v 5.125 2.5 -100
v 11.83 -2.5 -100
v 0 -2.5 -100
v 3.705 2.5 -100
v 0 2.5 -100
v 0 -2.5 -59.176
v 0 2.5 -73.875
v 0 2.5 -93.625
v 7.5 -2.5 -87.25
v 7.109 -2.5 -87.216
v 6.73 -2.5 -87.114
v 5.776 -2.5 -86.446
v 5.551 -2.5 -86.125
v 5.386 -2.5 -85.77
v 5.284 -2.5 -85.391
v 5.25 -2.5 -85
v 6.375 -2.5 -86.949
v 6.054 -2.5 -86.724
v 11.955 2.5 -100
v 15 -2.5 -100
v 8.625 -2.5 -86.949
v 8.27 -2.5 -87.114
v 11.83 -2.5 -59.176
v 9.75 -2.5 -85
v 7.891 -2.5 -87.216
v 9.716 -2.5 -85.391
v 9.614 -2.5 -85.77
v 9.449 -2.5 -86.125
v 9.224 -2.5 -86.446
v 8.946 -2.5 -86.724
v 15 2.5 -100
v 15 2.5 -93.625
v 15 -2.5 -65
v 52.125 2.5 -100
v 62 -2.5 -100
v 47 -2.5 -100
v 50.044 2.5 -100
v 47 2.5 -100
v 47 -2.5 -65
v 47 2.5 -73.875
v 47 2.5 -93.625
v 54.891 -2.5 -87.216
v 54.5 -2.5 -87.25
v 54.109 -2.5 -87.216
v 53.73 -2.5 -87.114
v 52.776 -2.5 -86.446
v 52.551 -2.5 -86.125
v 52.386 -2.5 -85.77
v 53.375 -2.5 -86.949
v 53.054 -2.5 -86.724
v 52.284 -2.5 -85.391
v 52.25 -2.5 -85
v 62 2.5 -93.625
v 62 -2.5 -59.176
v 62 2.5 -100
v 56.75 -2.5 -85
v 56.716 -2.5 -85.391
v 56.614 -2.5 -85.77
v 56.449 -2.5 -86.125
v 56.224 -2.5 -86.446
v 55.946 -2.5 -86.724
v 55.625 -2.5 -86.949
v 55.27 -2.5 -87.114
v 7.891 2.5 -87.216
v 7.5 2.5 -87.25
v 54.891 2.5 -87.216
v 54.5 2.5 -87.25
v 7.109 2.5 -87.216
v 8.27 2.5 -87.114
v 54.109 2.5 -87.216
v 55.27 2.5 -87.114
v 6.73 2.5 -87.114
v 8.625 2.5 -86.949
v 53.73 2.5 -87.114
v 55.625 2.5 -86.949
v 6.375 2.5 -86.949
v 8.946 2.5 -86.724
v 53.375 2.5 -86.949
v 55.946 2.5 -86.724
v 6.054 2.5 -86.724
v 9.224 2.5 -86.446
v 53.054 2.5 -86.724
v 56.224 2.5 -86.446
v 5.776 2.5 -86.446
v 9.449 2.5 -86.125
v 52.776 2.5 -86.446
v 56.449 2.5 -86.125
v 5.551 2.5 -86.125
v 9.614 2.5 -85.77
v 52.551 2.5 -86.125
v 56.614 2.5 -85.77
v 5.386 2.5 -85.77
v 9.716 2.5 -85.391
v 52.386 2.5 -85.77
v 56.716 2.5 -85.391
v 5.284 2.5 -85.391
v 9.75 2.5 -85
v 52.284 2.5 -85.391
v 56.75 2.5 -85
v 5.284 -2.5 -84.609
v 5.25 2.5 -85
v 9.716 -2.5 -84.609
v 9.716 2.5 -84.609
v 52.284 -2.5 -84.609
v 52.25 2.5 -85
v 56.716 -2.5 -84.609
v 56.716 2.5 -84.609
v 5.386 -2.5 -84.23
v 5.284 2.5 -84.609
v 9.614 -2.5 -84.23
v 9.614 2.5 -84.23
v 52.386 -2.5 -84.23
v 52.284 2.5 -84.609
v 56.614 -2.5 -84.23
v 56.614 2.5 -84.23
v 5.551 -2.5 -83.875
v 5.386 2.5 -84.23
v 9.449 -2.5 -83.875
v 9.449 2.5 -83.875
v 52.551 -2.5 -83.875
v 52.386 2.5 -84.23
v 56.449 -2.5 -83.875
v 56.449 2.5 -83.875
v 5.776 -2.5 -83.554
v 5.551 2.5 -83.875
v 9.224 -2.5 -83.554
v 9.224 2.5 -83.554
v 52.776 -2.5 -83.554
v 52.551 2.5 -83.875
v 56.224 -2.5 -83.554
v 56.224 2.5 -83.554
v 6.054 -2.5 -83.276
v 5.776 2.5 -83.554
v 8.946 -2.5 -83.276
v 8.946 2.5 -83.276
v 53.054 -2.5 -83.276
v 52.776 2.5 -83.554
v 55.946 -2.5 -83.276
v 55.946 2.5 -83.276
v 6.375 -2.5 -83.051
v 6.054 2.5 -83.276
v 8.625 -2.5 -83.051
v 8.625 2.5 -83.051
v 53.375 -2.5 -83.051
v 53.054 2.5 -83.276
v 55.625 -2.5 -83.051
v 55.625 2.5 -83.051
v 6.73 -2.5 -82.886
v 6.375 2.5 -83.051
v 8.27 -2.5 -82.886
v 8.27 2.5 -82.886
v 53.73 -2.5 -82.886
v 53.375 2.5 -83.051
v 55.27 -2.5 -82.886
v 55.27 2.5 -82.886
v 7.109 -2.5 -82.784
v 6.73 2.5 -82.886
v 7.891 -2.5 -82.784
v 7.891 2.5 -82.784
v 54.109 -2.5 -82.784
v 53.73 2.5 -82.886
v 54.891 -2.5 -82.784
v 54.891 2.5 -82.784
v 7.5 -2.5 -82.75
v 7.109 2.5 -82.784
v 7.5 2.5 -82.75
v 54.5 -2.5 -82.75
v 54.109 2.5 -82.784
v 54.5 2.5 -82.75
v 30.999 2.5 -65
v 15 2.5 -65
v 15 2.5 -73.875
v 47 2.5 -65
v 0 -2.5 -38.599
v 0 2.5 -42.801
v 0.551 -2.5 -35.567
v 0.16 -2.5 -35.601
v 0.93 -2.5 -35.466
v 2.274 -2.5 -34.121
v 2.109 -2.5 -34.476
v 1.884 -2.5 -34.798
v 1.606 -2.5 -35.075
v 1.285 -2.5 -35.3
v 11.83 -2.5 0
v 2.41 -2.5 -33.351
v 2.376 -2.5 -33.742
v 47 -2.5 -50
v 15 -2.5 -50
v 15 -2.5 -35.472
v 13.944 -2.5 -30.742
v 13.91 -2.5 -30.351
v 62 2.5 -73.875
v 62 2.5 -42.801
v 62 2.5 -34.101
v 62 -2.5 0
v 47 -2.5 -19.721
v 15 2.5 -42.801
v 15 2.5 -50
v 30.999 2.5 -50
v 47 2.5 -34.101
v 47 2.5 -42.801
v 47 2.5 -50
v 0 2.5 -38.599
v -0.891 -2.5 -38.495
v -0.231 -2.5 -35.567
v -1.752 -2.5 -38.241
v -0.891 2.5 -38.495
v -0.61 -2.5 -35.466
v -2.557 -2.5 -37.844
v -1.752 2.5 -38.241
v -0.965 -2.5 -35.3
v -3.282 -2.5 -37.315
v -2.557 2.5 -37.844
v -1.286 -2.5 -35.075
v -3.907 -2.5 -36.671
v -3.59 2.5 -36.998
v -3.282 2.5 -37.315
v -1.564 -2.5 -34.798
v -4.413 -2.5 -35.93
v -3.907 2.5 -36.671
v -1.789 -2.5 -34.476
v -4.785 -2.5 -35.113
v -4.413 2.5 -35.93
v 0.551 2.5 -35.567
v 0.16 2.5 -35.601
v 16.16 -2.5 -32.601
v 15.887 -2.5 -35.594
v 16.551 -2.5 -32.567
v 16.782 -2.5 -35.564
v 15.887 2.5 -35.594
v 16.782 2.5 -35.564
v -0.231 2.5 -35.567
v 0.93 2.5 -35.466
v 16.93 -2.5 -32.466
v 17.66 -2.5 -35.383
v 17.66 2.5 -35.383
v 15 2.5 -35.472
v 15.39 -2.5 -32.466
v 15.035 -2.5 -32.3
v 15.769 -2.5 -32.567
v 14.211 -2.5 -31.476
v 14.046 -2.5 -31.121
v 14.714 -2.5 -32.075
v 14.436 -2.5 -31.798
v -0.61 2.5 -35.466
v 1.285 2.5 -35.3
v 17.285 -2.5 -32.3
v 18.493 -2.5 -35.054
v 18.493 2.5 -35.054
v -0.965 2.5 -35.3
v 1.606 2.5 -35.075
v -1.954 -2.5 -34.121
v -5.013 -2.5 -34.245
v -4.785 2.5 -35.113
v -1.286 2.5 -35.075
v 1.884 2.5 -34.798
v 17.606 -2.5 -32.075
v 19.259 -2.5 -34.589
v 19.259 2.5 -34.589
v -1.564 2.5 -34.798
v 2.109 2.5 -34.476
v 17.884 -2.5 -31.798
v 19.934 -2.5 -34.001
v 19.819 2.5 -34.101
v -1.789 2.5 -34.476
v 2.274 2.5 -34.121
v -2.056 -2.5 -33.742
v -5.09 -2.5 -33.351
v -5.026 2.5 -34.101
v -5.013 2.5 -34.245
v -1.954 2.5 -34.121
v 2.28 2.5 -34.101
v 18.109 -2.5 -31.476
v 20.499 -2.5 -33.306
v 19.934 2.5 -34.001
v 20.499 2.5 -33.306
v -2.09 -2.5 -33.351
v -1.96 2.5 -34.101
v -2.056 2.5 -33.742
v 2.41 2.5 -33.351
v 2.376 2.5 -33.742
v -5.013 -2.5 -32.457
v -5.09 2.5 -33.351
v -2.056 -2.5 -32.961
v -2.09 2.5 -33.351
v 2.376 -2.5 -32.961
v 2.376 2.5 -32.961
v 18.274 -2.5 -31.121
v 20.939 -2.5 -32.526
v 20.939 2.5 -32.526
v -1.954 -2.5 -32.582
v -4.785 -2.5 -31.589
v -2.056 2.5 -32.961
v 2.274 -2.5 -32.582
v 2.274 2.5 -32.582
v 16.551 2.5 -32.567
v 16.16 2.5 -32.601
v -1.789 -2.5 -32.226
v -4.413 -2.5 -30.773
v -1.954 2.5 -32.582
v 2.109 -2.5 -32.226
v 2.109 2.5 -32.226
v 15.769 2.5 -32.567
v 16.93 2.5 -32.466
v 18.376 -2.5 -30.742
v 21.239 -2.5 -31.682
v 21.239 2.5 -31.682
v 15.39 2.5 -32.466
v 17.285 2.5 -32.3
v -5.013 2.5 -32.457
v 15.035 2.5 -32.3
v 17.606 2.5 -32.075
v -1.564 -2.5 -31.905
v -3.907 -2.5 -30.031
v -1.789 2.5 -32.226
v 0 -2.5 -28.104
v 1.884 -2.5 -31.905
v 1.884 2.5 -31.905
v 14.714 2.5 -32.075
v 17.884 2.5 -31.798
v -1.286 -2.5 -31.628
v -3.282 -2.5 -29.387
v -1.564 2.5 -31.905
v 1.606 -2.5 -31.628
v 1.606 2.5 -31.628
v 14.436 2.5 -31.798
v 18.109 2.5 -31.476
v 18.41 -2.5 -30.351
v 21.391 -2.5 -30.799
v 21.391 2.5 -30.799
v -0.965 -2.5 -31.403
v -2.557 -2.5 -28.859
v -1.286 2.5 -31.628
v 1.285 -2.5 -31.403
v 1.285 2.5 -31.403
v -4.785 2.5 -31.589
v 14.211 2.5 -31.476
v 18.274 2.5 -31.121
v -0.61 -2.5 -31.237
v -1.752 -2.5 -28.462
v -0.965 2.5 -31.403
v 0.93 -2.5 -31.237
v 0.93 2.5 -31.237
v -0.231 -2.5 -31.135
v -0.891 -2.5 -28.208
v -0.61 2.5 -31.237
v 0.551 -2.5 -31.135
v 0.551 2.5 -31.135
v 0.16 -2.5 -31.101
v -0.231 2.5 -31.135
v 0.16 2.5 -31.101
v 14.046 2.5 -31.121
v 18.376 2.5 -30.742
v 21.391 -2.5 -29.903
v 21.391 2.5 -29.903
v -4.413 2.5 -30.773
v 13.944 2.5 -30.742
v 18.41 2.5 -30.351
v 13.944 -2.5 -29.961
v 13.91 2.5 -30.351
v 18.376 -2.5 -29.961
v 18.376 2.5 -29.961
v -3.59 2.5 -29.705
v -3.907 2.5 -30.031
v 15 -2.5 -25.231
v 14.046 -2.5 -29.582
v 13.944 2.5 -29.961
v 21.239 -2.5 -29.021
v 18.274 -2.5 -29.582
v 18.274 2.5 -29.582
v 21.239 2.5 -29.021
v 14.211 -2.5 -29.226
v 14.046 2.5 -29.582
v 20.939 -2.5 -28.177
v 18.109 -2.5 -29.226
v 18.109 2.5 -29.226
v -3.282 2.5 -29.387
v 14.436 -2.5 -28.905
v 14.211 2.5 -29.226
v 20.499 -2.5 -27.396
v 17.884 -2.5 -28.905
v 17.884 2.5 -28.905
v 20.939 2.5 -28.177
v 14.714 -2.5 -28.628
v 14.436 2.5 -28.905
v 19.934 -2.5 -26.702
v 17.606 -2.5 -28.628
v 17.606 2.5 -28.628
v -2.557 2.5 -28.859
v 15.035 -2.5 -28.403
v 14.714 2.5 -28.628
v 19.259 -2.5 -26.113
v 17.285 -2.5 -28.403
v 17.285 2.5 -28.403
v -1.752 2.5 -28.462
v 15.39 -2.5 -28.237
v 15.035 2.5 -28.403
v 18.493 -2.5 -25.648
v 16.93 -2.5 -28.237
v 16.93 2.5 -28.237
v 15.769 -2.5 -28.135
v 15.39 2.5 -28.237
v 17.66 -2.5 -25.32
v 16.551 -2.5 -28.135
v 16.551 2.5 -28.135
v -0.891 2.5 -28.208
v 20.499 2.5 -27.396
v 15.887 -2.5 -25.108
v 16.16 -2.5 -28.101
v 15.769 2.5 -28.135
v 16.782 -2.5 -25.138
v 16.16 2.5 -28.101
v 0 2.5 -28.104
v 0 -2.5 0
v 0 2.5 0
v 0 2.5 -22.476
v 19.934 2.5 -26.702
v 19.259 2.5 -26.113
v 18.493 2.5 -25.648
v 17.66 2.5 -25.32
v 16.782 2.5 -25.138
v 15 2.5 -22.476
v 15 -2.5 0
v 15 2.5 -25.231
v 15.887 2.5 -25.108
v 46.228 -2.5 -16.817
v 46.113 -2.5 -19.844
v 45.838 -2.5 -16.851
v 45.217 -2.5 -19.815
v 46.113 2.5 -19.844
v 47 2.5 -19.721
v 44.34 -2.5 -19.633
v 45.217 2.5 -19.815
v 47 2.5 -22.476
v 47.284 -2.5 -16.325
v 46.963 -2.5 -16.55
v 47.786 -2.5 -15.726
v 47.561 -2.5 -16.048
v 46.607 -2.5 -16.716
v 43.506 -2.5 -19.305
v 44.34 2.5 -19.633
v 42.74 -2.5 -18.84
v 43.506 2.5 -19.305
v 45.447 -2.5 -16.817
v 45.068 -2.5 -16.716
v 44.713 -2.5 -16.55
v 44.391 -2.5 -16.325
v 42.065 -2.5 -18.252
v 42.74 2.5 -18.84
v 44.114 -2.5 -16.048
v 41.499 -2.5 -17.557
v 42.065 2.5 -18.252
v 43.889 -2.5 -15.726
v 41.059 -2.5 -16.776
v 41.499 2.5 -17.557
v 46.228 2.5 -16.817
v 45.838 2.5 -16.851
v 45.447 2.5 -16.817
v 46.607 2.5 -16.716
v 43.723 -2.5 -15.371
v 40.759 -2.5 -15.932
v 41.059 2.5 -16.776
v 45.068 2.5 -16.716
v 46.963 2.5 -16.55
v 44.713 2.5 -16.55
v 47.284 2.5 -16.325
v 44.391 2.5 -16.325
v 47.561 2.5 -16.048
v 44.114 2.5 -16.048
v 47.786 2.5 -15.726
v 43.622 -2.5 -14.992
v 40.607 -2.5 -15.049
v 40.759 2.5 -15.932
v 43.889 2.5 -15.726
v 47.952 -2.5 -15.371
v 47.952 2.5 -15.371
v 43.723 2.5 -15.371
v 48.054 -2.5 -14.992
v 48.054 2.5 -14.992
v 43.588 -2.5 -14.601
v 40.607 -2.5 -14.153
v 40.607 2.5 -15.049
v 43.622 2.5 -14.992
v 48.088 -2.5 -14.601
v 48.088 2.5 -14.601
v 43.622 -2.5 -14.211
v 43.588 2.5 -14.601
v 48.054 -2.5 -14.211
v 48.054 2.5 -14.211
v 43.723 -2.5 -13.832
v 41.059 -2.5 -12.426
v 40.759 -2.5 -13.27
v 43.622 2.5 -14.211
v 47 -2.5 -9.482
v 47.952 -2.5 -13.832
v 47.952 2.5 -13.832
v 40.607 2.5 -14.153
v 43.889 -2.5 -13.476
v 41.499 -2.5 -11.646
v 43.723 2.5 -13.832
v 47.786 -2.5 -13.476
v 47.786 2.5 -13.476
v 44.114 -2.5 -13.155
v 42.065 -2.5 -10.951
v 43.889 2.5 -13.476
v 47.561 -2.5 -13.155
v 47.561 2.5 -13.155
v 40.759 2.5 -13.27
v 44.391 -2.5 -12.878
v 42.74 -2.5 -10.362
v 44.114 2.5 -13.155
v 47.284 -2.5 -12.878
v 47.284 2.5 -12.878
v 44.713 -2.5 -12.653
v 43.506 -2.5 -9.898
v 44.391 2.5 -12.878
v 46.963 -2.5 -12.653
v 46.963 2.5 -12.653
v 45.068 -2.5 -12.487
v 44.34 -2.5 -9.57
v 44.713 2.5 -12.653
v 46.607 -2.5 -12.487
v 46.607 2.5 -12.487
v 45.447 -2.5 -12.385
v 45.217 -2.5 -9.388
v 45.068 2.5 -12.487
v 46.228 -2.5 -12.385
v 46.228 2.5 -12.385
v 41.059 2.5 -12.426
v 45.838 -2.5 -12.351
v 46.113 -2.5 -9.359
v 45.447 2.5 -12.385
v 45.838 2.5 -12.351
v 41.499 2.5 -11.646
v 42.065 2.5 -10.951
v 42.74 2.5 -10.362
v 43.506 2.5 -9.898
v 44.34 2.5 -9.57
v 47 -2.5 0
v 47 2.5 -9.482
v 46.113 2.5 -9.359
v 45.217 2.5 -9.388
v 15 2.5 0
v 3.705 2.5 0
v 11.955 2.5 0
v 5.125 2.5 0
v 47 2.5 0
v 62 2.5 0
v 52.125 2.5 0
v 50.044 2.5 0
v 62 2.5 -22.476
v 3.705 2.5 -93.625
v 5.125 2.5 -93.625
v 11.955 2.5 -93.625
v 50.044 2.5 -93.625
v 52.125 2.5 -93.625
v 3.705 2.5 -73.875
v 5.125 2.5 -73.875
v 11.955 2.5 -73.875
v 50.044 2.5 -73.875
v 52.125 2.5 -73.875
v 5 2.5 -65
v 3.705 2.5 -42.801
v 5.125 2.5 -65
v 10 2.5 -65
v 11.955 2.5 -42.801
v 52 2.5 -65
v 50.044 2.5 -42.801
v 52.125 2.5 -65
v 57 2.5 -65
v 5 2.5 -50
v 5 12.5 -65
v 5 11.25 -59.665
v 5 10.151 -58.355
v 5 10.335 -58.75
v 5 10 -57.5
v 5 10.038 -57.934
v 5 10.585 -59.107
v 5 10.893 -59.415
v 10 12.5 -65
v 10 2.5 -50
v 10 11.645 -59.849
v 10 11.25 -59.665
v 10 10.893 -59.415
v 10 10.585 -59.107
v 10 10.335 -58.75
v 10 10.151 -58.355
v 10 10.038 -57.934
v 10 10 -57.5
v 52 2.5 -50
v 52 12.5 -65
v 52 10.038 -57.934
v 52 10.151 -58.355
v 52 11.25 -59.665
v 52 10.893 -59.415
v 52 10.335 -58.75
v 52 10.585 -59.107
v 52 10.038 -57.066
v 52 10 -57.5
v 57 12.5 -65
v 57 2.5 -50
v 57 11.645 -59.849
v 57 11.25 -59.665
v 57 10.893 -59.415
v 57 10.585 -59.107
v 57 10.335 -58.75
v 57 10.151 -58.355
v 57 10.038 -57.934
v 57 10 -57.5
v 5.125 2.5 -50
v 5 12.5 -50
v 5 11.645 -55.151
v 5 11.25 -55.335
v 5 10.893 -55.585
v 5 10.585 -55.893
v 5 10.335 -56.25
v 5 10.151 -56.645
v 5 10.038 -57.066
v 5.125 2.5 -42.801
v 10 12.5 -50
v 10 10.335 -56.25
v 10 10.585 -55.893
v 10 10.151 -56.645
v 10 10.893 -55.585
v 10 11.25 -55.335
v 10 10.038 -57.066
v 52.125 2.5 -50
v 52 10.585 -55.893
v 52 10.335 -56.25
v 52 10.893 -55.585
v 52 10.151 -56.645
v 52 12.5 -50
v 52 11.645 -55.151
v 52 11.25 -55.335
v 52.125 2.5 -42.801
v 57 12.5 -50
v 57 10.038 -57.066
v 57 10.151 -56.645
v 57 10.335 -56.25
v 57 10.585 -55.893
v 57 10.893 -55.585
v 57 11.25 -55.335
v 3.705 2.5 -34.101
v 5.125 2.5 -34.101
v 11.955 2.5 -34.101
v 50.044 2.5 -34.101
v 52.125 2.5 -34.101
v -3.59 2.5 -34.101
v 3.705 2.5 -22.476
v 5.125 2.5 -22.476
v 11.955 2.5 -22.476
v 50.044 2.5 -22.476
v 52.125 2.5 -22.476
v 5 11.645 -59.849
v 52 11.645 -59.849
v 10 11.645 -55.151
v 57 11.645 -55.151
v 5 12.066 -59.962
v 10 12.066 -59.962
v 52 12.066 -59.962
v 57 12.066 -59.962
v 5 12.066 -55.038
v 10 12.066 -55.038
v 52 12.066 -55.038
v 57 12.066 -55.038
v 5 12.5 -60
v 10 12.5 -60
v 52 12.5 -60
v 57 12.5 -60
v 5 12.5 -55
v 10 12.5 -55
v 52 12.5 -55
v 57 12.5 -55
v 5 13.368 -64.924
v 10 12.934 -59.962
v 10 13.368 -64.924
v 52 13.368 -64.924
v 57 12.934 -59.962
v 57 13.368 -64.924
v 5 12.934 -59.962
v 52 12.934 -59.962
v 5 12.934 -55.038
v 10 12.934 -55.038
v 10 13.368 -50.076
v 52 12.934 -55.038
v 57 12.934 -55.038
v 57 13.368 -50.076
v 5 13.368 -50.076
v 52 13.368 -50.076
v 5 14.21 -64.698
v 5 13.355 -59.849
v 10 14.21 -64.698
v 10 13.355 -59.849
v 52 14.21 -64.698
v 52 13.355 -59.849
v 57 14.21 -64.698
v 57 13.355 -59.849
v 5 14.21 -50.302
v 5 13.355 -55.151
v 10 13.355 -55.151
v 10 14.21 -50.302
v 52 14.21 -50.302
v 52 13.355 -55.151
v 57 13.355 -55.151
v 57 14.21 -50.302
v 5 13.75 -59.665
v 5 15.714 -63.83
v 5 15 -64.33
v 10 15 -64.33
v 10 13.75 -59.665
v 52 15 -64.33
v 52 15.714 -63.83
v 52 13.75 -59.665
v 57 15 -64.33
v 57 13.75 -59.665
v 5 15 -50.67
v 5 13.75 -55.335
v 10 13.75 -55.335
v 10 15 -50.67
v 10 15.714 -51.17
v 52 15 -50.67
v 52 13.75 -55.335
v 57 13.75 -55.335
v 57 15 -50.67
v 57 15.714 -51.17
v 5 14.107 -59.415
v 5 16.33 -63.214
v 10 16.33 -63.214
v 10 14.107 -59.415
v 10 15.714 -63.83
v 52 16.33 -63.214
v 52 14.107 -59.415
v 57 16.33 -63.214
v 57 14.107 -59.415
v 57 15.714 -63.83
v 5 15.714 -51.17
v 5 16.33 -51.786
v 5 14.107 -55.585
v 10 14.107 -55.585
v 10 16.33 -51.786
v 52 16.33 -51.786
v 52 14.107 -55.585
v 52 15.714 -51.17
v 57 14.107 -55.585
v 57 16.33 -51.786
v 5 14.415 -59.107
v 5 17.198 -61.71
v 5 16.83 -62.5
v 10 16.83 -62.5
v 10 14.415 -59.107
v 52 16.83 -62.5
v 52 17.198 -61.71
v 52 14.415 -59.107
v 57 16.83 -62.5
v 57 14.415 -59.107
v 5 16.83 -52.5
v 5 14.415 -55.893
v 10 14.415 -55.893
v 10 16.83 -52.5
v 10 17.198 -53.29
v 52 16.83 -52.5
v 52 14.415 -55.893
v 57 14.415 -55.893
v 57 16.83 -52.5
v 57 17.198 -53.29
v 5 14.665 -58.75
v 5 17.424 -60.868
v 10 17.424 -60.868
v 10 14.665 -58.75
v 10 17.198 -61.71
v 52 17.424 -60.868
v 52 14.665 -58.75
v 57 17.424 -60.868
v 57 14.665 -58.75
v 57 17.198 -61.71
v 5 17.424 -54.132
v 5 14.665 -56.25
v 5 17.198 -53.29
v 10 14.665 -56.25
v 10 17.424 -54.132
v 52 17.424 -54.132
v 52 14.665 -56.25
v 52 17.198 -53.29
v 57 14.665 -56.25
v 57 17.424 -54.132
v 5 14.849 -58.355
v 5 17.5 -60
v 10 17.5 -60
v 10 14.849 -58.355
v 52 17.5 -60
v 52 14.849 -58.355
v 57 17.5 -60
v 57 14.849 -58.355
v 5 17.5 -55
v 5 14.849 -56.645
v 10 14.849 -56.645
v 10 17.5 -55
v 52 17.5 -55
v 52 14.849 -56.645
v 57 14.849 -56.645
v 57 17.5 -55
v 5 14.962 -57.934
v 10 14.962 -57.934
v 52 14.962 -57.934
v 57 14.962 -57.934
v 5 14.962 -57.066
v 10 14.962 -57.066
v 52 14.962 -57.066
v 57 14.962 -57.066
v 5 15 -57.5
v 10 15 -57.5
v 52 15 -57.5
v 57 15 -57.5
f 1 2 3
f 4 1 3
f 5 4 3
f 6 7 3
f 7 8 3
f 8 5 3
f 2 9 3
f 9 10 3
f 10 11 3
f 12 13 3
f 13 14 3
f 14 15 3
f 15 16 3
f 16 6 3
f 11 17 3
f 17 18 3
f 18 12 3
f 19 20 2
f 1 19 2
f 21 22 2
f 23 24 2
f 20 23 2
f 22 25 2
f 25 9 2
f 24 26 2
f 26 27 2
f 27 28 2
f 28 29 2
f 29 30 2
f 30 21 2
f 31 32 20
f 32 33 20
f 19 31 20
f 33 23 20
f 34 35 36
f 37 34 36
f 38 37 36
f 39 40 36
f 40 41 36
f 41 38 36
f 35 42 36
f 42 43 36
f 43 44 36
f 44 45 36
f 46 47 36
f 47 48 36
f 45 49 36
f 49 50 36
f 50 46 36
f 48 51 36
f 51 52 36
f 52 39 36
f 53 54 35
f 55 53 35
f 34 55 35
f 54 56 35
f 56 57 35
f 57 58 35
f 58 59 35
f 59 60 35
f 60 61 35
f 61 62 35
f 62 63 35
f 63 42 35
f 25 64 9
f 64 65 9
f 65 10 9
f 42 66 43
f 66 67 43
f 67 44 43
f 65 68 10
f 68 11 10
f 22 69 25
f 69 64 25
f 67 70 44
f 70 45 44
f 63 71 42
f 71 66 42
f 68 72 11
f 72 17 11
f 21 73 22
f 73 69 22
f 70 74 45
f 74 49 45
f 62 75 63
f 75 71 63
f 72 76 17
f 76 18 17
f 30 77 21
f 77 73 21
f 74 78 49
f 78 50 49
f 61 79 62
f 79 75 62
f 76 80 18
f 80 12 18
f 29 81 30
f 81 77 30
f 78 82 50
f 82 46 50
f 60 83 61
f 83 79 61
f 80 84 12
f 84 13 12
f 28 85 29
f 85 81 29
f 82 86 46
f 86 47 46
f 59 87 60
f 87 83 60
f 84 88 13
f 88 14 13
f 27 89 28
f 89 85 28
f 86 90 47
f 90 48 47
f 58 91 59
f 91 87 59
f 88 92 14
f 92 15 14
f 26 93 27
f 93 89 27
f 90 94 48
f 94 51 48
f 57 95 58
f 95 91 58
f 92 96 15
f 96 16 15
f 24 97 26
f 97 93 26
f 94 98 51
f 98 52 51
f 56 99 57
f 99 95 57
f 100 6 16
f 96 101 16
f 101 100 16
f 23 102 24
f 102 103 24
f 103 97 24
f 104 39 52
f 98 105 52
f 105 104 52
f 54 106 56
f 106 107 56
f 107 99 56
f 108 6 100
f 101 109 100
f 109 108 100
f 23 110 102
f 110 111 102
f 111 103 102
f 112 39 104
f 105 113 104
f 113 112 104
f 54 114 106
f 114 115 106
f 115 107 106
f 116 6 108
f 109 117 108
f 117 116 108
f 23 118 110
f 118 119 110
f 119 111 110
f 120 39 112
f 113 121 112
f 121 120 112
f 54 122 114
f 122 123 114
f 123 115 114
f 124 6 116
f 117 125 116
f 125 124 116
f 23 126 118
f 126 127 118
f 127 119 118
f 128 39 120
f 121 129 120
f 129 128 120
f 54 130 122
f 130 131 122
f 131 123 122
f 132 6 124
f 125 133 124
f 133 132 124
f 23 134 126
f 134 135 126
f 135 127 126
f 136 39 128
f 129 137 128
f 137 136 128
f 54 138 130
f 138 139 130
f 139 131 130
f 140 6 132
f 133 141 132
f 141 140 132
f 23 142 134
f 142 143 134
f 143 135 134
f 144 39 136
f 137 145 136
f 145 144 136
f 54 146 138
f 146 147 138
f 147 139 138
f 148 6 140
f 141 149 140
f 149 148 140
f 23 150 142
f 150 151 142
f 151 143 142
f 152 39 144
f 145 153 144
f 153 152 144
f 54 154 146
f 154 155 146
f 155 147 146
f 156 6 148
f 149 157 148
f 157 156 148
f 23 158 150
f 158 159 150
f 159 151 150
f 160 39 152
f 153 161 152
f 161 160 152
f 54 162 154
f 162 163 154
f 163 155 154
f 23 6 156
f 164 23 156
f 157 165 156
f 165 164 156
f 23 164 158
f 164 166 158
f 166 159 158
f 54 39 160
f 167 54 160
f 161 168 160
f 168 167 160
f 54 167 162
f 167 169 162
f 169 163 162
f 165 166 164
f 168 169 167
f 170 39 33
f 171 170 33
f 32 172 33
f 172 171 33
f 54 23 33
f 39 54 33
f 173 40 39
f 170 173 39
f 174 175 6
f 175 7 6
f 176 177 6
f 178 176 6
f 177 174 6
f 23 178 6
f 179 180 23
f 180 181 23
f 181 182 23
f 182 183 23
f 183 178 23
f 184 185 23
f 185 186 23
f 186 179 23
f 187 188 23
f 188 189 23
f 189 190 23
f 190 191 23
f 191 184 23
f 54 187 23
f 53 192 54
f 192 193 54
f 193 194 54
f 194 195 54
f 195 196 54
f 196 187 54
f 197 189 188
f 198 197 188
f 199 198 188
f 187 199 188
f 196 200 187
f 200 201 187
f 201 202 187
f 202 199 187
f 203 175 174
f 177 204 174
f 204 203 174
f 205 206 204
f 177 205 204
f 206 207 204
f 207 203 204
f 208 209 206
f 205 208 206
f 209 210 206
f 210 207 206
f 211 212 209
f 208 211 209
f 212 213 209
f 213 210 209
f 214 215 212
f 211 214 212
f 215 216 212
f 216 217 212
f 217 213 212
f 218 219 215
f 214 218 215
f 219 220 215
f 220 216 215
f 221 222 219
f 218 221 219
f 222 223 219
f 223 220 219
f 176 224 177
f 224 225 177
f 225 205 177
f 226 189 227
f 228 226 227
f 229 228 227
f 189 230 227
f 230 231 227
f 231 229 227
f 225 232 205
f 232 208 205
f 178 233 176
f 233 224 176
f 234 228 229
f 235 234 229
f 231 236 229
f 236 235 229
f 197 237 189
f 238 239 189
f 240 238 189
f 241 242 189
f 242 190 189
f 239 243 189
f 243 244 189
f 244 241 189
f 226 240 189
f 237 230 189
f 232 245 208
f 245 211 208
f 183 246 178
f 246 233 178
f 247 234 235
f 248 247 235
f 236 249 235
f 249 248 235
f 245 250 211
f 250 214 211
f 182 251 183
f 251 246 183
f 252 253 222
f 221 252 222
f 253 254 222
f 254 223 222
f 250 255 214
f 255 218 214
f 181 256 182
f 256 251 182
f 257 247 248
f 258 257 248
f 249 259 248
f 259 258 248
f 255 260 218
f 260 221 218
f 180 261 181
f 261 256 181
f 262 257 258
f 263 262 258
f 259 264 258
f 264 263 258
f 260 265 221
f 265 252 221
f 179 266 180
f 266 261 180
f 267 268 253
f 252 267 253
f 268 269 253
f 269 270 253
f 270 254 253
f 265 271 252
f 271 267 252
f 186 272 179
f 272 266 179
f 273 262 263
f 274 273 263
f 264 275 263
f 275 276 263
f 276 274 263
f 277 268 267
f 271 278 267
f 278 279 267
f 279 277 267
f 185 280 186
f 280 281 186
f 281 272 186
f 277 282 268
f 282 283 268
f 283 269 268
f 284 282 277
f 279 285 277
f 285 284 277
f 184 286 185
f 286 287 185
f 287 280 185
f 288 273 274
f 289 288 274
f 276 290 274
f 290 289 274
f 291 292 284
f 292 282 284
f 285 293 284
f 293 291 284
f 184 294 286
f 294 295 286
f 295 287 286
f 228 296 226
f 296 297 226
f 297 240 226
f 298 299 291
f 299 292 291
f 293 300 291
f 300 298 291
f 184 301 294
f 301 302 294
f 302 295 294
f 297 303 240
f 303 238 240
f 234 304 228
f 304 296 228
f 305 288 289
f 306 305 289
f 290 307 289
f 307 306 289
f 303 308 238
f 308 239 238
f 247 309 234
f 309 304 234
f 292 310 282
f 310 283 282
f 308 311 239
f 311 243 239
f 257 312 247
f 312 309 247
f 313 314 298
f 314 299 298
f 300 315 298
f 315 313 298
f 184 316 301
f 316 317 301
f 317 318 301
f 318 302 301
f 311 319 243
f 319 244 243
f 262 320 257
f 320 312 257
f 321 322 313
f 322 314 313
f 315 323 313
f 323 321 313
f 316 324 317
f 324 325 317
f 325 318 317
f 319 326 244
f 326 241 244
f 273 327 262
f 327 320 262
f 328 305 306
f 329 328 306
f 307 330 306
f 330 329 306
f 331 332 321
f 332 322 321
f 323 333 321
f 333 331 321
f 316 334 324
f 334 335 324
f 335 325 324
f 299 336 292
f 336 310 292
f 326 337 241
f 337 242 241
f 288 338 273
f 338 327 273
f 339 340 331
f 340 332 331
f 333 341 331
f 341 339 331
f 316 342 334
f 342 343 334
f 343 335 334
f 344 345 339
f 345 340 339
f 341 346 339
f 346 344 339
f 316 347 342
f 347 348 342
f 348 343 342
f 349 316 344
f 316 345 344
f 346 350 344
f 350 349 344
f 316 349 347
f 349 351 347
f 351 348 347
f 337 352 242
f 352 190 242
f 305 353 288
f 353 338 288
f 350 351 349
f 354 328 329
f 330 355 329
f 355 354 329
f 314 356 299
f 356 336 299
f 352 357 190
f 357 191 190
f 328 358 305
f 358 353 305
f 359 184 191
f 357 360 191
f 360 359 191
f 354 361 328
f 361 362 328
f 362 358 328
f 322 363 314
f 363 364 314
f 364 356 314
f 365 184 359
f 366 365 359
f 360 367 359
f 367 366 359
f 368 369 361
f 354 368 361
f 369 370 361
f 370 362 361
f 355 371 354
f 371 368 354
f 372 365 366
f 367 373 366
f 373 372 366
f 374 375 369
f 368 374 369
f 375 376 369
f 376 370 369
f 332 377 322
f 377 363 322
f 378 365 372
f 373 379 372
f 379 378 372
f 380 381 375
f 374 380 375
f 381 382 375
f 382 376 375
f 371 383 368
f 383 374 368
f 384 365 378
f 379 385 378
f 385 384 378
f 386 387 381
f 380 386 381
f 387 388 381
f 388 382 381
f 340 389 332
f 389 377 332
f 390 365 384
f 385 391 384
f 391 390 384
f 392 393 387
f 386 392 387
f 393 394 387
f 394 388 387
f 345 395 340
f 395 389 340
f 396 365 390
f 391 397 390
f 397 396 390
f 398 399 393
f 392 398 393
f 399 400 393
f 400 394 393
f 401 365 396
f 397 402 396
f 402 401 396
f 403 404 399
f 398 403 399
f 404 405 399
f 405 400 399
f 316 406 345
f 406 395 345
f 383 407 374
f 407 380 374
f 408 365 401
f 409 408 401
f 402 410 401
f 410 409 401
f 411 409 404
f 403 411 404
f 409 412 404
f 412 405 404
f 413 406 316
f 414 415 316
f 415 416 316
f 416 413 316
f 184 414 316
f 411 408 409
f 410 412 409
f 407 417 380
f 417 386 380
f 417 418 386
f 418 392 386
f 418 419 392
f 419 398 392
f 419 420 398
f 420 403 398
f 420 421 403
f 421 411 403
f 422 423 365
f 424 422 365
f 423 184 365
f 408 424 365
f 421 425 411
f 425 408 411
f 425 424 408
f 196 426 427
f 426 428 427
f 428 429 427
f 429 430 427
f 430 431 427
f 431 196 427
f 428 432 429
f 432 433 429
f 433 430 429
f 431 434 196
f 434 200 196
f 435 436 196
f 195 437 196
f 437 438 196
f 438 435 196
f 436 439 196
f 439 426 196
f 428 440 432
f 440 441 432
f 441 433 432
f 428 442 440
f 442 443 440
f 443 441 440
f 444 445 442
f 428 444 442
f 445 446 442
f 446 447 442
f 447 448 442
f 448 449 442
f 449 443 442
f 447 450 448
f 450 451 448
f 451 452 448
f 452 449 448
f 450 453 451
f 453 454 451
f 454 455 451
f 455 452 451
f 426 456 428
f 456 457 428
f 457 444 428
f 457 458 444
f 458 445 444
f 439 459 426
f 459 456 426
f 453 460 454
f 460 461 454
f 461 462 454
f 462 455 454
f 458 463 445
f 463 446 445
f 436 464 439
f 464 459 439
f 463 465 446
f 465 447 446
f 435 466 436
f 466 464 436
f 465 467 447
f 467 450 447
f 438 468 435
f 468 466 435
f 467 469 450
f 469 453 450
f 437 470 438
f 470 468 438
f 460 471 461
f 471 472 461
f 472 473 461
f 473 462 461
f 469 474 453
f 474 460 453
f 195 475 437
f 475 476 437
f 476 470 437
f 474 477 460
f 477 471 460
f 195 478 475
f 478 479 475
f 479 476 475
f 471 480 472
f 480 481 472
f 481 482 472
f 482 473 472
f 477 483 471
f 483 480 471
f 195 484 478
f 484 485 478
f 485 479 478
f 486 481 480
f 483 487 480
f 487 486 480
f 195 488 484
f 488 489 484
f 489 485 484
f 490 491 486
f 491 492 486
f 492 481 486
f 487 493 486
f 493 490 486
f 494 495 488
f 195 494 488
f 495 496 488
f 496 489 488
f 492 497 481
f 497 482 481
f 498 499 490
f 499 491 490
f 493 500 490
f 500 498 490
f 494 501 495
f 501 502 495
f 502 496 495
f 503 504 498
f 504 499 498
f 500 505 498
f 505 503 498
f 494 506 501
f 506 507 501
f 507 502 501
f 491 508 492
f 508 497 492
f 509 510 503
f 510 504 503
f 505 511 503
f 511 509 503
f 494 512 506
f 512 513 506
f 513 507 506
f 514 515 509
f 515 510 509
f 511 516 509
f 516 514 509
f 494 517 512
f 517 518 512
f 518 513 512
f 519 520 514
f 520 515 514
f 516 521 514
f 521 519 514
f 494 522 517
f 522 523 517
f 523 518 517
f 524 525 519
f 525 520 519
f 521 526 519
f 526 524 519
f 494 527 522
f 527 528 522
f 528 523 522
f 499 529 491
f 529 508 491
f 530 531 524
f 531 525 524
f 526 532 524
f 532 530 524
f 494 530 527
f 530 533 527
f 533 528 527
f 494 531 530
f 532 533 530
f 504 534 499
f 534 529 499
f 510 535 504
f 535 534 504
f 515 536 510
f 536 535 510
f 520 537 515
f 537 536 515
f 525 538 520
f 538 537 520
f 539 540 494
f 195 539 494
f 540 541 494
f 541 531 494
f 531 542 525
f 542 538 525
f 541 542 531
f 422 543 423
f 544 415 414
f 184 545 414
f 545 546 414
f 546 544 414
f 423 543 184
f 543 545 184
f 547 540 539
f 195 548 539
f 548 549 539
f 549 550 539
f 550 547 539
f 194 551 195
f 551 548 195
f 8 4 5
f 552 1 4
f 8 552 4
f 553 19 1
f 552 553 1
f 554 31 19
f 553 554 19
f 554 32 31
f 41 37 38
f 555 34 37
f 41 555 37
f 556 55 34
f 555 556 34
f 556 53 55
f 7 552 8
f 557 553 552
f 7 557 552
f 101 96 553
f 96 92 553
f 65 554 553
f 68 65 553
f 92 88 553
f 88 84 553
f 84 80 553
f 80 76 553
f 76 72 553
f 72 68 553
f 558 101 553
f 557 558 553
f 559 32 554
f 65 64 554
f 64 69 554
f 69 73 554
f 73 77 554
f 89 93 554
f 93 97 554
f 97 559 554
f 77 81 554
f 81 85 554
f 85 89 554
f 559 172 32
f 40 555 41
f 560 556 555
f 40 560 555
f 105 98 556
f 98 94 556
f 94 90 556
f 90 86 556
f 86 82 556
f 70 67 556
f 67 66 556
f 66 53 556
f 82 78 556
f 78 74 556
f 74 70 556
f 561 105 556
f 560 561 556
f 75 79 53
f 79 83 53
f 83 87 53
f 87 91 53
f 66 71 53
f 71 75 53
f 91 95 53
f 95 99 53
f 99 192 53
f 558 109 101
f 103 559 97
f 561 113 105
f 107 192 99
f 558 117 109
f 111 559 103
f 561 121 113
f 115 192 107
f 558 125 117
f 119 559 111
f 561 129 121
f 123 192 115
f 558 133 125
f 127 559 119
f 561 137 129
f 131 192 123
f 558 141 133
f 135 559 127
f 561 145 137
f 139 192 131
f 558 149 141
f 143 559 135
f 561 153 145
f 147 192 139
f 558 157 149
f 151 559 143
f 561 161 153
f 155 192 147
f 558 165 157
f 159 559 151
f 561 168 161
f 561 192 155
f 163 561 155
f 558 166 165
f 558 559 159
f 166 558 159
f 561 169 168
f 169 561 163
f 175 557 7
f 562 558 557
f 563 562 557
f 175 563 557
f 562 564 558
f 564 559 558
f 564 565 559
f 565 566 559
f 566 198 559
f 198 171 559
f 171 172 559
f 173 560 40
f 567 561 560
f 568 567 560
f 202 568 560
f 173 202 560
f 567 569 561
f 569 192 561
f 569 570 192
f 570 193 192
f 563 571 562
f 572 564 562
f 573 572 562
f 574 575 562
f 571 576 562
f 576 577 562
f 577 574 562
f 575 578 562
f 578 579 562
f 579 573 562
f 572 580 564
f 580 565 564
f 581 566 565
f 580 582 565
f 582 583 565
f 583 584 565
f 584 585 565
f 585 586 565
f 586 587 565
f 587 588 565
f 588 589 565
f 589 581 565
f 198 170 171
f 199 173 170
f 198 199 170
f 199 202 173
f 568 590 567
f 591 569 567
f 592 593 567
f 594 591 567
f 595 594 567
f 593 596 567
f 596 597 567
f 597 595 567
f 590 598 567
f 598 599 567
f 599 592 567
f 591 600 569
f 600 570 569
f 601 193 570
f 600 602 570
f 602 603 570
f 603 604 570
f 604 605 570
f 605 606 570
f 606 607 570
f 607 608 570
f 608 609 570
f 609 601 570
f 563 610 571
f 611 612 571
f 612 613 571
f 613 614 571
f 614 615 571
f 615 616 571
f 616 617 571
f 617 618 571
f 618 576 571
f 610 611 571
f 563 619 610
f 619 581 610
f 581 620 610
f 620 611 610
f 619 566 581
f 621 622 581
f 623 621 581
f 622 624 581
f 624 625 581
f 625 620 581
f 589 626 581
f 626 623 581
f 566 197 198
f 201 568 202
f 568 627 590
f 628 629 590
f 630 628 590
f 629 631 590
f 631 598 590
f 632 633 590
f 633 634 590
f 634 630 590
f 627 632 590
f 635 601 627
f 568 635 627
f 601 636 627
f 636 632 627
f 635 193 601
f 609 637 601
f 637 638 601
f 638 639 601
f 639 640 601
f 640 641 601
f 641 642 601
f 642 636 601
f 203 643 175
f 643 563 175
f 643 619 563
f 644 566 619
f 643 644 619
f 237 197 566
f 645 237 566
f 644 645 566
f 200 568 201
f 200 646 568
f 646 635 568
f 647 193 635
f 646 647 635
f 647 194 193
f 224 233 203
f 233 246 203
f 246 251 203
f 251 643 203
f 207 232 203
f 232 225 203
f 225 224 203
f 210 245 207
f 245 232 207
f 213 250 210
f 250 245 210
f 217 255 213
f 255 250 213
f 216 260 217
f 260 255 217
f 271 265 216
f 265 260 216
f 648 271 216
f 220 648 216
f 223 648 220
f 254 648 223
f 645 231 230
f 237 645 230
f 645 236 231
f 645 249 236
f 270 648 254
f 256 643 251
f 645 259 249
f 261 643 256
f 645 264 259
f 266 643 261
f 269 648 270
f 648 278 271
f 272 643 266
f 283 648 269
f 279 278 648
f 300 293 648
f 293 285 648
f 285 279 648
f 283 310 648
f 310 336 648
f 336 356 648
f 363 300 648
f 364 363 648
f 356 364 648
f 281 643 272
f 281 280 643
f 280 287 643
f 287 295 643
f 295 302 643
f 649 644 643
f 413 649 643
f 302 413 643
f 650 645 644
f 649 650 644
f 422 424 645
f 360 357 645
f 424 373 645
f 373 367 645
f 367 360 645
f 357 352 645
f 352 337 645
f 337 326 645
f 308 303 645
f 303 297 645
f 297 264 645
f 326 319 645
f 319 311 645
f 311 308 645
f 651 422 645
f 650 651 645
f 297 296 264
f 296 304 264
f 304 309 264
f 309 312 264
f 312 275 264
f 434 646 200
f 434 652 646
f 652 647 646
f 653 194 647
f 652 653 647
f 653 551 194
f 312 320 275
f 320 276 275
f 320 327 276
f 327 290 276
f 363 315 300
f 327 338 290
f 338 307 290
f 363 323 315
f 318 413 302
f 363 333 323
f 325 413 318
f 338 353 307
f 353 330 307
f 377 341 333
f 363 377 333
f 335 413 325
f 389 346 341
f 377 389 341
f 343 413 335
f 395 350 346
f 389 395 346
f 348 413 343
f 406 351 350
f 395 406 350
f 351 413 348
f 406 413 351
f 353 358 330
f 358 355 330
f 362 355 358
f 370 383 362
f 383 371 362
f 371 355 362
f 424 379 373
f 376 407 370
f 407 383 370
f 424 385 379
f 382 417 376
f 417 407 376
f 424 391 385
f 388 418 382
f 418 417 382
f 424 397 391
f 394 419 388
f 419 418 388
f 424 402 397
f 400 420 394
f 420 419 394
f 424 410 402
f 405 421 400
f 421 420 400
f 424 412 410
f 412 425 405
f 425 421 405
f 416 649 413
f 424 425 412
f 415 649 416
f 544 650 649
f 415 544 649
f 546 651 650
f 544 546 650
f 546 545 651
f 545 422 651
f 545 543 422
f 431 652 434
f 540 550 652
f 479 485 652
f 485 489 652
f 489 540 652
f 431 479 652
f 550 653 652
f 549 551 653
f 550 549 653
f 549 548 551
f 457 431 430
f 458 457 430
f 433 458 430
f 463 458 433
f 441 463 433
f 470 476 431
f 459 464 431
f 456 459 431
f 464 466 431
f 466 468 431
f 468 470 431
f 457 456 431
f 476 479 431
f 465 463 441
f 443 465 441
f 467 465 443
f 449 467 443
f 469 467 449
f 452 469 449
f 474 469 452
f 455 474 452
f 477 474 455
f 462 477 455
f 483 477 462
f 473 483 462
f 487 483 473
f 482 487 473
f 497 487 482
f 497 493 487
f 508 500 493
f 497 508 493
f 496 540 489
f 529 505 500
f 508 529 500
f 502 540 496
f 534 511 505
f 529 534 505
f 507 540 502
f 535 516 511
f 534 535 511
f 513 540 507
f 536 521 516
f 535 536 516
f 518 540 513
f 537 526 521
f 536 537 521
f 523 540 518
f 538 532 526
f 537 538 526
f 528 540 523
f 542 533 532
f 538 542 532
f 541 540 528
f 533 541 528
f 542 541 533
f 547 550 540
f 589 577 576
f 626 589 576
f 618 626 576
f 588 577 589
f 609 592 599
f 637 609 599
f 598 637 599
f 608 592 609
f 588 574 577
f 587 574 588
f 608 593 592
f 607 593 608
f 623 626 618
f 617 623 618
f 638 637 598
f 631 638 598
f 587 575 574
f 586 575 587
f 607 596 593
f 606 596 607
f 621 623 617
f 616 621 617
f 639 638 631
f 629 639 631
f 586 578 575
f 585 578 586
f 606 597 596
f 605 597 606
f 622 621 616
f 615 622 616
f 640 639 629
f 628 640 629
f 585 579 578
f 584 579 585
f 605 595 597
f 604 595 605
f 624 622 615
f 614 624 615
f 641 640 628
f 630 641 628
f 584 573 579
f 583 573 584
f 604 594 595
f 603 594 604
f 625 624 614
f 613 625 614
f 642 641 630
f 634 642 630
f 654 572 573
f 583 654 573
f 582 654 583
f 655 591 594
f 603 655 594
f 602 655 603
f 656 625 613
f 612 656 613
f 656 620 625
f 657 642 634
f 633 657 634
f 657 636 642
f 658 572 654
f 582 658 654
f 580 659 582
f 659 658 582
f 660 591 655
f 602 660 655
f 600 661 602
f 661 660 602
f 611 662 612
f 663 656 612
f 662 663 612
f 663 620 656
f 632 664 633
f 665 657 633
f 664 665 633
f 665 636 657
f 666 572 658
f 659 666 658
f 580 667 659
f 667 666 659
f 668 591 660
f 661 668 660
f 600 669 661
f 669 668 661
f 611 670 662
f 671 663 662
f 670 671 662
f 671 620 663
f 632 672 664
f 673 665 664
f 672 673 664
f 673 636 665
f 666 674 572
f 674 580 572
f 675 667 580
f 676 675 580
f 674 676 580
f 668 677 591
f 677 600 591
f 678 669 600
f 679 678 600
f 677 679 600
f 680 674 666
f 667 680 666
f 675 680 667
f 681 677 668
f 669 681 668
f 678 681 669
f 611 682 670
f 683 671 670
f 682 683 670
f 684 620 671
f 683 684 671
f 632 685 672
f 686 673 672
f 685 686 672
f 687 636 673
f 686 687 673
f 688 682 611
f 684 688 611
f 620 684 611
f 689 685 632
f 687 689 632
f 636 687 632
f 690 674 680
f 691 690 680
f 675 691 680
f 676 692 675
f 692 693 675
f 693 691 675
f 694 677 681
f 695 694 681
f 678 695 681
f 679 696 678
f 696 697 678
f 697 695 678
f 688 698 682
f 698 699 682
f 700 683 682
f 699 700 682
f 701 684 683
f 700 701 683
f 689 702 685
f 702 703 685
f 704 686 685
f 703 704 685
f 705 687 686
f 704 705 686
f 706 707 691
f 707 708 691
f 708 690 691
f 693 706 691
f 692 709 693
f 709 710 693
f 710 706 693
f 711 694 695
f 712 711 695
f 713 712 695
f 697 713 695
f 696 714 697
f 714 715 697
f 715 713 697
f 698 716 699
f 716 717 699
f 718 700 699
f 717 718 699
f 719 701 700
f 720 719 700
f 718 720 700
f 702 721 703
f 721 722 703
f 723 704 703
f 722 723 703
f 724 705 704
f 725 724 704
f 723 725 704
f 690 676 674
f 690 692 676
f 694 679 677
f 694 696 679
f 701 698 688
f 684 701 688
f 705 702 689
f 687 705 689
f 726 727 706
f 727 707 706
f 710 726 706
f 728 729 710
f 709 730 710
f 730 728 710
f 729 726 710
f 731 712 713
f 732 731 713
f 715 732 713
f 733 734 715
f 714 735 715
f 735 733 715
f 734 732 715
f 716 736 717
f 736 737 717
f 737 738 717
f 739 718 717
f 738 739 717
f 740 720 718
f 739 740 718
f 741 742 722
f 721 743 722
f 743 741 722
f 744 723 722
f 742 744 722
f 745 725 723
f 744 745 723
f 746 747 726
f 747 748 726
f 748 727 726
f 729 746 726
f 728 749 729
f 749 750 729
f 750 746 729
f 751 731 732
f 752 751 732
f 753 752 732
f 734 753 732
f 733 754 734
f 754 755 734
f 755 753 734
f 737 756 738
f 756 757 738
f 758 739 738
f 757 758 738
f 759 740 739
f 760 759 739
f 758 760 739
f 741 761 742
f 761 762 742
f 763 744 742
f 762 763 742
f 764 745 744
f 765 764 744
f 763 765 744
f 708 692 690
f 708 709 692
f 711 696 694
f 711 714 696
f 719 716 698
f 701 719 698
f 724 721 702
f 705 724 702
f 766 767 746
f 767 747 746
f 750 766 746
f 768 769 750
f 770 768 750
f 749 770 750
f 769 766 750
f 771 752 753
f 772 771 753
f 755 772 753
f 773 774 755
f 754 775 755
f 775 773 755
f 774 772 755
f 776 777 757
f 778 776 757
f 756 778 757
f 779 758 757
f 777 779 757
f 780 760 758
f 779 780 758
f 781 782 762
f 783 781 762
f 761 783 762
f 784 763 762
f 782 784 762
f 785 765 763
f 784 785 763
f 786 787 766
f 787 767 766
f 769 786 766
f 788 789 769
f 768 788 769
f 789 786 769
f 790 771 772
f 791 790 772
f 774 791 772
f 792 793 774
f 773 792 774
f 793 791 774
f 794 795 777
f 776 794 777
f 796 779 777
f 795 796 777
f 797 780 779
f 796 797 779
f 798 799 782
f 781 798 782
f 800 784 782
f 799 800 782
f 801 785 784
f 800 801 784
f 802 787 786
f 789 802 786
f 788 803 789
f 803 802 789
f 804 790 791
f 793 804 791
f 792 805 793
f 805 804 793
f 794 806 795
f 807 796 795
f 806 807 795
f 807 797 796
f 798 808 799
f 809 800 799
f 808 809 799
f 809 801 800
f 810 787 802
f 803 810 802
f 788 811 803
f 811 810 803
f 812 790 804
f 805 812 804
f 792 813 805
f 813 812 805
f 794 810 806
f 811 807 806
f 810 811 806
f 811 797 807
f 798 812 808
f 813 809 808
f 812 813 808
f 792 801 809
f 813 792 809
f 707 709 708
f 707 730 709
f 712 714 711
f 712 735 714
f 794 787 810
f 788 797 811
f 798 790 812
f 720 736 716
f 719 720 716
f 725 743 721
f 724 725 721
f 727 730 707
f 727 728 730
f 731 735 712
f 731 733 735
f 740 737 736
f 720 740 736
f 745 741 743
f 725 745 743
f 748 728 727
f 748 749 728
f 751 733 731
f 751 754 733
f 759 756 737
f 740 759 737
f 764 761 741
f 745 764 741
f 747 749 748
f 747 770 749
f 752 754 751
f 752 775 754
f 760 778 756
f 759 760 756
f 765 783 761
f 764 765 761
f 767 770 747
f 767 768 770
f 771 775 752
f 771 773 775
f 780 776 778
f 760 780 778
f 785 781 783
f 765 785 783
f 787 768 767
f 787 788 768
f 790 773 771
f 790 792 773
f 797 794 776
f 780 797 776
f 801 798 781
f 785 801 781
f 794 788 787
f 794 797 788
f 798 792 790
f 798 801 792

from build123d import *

# Parameters (mm, degrees)
SKETCH1_W           = 15
SKETCH1_H           = 100
SKETCH1_W_2         = 32
SKETCH1_H_2         = 15
BOSS_EXTRUDE1_DEPTH = 2.5
SKETCH2_W           = 5
SKETCH2_H           = 15
BOSS_EXTRUDE2_DEPTH = 15
SKETCH3_R           = 2.5
CUT_EXTRUDE1_DEPTH  = 52
FILLET2_R           = 5
BOSS_EXTRUDE3_DEPTH = 5
SKETCH5_R           = 2.25
CUT_EXTRUDE3_DEPTH  = 5
SKETCH6_R           = 2.25
CUT_EXTRUDE4_DEPTH  = 5


with BuildPart() as part:
    # Sketch1 → Boss-Extrude1 (new body, symmetric)
    with BuildSketch(Plane(origin=(0, 0, 0), x_dir=(1, 0, 0), z_dir=(0, 1, 0))):
        with Locations((7.5, 50)):
            Rectangle(SKETCH1_W, SKETCH1_H)
        with Locations((31, 57.5)):
            Rectangle(SKETCH1_W_2, SKETCH1_H_2)
        with Locations((54.5, 50)):
            Rectangle(SKETCH1_W, SKETCH1_H)
    extrude(amount=BOSS_EXTRUDE1_DEPTH, both=True)

    # Sketch2 → Boss-Extrude2 (add)
    with BuildSketch(Plane(origin=(0, 2.5, 0), x_dir=(1, 0, 0), z_dir=(0, 1, 0))):
        with Locations((54.5, 57.5)):
            Rectangle(SKETCH2_W, SKETCH2_H)
        with Locations((7.5, 57.5)):
            Rectangle(SKETCH2_W, SKETCH2_H)
    extrude(amount=BOSS_EXTRUDE2_DEPTH)

    # Sketch3 → Cut-Extrude1 (cut)
    with BuildSketch(Plane.ZY.offset(-5)):
        with Locations((-57.5, 12.5)):
            Circle(SKETCH3_R)
    extrude(amount=-CUT_EXTRUDE1_DEPTH, mode=Mode.SUBTRACT)

    # Fillet2
    fillet2_edges = [part.edges().sort_by_distance(p)[0] for p in [
        (54.5, 17.5, -65),
        (54.5, 17.5, -50),
        (7.5, 17.5, -65),
        (7.5, 17.5, -50),
    ]]
    fillet(fillet2_edges, radius=FILLET2_R)

    # Sketch4 → Boss-Extrude3 (add)
    with BuildSketch(Plane(origin=(0, 2.5, 0), x_dir=(1, 0, 0), z_dir=(0, 1, 0))):
        with BuildLine():
            ThreePointArc((47, 12.674737063), (43.587769422, 14.601319551), (47, 16.527902039))
            Line((47, 16.527902039), (47, 19.721057834))
            ThreePointArc((47, 19.721057834), (40.587769422, 14.601319551), (47, 9.481581269))
            Line((47, 9.481581269), (47, 12.674737063))
        make_face()
        with BuildLine():
            ThreePointArc((15, 25.231075416), (21.41, 30.351319551), (15, 35.471563686))
            Line((15, 35.471563686), (15, 32.279245898))
            ThreePointArc((15, 32.279245898), (17.26736173, 32.30995428), (18.41, 30.351319551))
            ThreePointArc((18.41, 30.351319551), (17.26736173, 28.392684823), (15, 28.423393204))
            Line((15, 28.423393204), (15, 25.231075416))
        make_face()
        with BuildLine():
            Line((0, 35.595623452), (0, 38.59888089))
            ThreePointArc((0, 38.59888089), (-5.09, 33.351319551), (0, 28.103758213))
            Line((0, 28.103758213), (0, 31.10701565))
            ThreePointArc((0, 31.10701565), (-2.09, 33.351319551), (0, 35.595623452))
        make_face()
    extrude(amount=-BOSS_EXTRUDE3_DEPTH)

    # Sketch5 → Cut-Extrude3 (cut)
    with BuildSketch(Plane(origin=(0, 2.5, 0), x_dir=(1, 0, 0), z_dir=(0, 1, 0))):
        with Locations((0.16, 33.351319551)):
            Circle(SKETCH5_R)
        with Locations((16.16, 30.351319551)):
            Circle(SKETCH5_R)
        with Locations((45.837769422, 14.601319551)):
            Circle(SKETCH5_R)
    extrude(amount=-CUT_EXTRUDE3_DEPTH, mode=Mode.SUBTRACT)

    # Sketch6 → Cut-Extrude4 (cut)
    with BuildSketch(Plane(origin=(0, 2.5, 0), x_dir=(1, 0, 0), z_dir=(0, 1, 0))):
        with Locations((7.5, 85)):
            Circle(SKETCH6_R)
        with Locations((54.5, 85)):
            Circle(SKETCH6_R)
    extrude(amount=-CUT_EXTRUDE4_DEPTH, mode=Mode.SUBTRACT)


solid = part.part
